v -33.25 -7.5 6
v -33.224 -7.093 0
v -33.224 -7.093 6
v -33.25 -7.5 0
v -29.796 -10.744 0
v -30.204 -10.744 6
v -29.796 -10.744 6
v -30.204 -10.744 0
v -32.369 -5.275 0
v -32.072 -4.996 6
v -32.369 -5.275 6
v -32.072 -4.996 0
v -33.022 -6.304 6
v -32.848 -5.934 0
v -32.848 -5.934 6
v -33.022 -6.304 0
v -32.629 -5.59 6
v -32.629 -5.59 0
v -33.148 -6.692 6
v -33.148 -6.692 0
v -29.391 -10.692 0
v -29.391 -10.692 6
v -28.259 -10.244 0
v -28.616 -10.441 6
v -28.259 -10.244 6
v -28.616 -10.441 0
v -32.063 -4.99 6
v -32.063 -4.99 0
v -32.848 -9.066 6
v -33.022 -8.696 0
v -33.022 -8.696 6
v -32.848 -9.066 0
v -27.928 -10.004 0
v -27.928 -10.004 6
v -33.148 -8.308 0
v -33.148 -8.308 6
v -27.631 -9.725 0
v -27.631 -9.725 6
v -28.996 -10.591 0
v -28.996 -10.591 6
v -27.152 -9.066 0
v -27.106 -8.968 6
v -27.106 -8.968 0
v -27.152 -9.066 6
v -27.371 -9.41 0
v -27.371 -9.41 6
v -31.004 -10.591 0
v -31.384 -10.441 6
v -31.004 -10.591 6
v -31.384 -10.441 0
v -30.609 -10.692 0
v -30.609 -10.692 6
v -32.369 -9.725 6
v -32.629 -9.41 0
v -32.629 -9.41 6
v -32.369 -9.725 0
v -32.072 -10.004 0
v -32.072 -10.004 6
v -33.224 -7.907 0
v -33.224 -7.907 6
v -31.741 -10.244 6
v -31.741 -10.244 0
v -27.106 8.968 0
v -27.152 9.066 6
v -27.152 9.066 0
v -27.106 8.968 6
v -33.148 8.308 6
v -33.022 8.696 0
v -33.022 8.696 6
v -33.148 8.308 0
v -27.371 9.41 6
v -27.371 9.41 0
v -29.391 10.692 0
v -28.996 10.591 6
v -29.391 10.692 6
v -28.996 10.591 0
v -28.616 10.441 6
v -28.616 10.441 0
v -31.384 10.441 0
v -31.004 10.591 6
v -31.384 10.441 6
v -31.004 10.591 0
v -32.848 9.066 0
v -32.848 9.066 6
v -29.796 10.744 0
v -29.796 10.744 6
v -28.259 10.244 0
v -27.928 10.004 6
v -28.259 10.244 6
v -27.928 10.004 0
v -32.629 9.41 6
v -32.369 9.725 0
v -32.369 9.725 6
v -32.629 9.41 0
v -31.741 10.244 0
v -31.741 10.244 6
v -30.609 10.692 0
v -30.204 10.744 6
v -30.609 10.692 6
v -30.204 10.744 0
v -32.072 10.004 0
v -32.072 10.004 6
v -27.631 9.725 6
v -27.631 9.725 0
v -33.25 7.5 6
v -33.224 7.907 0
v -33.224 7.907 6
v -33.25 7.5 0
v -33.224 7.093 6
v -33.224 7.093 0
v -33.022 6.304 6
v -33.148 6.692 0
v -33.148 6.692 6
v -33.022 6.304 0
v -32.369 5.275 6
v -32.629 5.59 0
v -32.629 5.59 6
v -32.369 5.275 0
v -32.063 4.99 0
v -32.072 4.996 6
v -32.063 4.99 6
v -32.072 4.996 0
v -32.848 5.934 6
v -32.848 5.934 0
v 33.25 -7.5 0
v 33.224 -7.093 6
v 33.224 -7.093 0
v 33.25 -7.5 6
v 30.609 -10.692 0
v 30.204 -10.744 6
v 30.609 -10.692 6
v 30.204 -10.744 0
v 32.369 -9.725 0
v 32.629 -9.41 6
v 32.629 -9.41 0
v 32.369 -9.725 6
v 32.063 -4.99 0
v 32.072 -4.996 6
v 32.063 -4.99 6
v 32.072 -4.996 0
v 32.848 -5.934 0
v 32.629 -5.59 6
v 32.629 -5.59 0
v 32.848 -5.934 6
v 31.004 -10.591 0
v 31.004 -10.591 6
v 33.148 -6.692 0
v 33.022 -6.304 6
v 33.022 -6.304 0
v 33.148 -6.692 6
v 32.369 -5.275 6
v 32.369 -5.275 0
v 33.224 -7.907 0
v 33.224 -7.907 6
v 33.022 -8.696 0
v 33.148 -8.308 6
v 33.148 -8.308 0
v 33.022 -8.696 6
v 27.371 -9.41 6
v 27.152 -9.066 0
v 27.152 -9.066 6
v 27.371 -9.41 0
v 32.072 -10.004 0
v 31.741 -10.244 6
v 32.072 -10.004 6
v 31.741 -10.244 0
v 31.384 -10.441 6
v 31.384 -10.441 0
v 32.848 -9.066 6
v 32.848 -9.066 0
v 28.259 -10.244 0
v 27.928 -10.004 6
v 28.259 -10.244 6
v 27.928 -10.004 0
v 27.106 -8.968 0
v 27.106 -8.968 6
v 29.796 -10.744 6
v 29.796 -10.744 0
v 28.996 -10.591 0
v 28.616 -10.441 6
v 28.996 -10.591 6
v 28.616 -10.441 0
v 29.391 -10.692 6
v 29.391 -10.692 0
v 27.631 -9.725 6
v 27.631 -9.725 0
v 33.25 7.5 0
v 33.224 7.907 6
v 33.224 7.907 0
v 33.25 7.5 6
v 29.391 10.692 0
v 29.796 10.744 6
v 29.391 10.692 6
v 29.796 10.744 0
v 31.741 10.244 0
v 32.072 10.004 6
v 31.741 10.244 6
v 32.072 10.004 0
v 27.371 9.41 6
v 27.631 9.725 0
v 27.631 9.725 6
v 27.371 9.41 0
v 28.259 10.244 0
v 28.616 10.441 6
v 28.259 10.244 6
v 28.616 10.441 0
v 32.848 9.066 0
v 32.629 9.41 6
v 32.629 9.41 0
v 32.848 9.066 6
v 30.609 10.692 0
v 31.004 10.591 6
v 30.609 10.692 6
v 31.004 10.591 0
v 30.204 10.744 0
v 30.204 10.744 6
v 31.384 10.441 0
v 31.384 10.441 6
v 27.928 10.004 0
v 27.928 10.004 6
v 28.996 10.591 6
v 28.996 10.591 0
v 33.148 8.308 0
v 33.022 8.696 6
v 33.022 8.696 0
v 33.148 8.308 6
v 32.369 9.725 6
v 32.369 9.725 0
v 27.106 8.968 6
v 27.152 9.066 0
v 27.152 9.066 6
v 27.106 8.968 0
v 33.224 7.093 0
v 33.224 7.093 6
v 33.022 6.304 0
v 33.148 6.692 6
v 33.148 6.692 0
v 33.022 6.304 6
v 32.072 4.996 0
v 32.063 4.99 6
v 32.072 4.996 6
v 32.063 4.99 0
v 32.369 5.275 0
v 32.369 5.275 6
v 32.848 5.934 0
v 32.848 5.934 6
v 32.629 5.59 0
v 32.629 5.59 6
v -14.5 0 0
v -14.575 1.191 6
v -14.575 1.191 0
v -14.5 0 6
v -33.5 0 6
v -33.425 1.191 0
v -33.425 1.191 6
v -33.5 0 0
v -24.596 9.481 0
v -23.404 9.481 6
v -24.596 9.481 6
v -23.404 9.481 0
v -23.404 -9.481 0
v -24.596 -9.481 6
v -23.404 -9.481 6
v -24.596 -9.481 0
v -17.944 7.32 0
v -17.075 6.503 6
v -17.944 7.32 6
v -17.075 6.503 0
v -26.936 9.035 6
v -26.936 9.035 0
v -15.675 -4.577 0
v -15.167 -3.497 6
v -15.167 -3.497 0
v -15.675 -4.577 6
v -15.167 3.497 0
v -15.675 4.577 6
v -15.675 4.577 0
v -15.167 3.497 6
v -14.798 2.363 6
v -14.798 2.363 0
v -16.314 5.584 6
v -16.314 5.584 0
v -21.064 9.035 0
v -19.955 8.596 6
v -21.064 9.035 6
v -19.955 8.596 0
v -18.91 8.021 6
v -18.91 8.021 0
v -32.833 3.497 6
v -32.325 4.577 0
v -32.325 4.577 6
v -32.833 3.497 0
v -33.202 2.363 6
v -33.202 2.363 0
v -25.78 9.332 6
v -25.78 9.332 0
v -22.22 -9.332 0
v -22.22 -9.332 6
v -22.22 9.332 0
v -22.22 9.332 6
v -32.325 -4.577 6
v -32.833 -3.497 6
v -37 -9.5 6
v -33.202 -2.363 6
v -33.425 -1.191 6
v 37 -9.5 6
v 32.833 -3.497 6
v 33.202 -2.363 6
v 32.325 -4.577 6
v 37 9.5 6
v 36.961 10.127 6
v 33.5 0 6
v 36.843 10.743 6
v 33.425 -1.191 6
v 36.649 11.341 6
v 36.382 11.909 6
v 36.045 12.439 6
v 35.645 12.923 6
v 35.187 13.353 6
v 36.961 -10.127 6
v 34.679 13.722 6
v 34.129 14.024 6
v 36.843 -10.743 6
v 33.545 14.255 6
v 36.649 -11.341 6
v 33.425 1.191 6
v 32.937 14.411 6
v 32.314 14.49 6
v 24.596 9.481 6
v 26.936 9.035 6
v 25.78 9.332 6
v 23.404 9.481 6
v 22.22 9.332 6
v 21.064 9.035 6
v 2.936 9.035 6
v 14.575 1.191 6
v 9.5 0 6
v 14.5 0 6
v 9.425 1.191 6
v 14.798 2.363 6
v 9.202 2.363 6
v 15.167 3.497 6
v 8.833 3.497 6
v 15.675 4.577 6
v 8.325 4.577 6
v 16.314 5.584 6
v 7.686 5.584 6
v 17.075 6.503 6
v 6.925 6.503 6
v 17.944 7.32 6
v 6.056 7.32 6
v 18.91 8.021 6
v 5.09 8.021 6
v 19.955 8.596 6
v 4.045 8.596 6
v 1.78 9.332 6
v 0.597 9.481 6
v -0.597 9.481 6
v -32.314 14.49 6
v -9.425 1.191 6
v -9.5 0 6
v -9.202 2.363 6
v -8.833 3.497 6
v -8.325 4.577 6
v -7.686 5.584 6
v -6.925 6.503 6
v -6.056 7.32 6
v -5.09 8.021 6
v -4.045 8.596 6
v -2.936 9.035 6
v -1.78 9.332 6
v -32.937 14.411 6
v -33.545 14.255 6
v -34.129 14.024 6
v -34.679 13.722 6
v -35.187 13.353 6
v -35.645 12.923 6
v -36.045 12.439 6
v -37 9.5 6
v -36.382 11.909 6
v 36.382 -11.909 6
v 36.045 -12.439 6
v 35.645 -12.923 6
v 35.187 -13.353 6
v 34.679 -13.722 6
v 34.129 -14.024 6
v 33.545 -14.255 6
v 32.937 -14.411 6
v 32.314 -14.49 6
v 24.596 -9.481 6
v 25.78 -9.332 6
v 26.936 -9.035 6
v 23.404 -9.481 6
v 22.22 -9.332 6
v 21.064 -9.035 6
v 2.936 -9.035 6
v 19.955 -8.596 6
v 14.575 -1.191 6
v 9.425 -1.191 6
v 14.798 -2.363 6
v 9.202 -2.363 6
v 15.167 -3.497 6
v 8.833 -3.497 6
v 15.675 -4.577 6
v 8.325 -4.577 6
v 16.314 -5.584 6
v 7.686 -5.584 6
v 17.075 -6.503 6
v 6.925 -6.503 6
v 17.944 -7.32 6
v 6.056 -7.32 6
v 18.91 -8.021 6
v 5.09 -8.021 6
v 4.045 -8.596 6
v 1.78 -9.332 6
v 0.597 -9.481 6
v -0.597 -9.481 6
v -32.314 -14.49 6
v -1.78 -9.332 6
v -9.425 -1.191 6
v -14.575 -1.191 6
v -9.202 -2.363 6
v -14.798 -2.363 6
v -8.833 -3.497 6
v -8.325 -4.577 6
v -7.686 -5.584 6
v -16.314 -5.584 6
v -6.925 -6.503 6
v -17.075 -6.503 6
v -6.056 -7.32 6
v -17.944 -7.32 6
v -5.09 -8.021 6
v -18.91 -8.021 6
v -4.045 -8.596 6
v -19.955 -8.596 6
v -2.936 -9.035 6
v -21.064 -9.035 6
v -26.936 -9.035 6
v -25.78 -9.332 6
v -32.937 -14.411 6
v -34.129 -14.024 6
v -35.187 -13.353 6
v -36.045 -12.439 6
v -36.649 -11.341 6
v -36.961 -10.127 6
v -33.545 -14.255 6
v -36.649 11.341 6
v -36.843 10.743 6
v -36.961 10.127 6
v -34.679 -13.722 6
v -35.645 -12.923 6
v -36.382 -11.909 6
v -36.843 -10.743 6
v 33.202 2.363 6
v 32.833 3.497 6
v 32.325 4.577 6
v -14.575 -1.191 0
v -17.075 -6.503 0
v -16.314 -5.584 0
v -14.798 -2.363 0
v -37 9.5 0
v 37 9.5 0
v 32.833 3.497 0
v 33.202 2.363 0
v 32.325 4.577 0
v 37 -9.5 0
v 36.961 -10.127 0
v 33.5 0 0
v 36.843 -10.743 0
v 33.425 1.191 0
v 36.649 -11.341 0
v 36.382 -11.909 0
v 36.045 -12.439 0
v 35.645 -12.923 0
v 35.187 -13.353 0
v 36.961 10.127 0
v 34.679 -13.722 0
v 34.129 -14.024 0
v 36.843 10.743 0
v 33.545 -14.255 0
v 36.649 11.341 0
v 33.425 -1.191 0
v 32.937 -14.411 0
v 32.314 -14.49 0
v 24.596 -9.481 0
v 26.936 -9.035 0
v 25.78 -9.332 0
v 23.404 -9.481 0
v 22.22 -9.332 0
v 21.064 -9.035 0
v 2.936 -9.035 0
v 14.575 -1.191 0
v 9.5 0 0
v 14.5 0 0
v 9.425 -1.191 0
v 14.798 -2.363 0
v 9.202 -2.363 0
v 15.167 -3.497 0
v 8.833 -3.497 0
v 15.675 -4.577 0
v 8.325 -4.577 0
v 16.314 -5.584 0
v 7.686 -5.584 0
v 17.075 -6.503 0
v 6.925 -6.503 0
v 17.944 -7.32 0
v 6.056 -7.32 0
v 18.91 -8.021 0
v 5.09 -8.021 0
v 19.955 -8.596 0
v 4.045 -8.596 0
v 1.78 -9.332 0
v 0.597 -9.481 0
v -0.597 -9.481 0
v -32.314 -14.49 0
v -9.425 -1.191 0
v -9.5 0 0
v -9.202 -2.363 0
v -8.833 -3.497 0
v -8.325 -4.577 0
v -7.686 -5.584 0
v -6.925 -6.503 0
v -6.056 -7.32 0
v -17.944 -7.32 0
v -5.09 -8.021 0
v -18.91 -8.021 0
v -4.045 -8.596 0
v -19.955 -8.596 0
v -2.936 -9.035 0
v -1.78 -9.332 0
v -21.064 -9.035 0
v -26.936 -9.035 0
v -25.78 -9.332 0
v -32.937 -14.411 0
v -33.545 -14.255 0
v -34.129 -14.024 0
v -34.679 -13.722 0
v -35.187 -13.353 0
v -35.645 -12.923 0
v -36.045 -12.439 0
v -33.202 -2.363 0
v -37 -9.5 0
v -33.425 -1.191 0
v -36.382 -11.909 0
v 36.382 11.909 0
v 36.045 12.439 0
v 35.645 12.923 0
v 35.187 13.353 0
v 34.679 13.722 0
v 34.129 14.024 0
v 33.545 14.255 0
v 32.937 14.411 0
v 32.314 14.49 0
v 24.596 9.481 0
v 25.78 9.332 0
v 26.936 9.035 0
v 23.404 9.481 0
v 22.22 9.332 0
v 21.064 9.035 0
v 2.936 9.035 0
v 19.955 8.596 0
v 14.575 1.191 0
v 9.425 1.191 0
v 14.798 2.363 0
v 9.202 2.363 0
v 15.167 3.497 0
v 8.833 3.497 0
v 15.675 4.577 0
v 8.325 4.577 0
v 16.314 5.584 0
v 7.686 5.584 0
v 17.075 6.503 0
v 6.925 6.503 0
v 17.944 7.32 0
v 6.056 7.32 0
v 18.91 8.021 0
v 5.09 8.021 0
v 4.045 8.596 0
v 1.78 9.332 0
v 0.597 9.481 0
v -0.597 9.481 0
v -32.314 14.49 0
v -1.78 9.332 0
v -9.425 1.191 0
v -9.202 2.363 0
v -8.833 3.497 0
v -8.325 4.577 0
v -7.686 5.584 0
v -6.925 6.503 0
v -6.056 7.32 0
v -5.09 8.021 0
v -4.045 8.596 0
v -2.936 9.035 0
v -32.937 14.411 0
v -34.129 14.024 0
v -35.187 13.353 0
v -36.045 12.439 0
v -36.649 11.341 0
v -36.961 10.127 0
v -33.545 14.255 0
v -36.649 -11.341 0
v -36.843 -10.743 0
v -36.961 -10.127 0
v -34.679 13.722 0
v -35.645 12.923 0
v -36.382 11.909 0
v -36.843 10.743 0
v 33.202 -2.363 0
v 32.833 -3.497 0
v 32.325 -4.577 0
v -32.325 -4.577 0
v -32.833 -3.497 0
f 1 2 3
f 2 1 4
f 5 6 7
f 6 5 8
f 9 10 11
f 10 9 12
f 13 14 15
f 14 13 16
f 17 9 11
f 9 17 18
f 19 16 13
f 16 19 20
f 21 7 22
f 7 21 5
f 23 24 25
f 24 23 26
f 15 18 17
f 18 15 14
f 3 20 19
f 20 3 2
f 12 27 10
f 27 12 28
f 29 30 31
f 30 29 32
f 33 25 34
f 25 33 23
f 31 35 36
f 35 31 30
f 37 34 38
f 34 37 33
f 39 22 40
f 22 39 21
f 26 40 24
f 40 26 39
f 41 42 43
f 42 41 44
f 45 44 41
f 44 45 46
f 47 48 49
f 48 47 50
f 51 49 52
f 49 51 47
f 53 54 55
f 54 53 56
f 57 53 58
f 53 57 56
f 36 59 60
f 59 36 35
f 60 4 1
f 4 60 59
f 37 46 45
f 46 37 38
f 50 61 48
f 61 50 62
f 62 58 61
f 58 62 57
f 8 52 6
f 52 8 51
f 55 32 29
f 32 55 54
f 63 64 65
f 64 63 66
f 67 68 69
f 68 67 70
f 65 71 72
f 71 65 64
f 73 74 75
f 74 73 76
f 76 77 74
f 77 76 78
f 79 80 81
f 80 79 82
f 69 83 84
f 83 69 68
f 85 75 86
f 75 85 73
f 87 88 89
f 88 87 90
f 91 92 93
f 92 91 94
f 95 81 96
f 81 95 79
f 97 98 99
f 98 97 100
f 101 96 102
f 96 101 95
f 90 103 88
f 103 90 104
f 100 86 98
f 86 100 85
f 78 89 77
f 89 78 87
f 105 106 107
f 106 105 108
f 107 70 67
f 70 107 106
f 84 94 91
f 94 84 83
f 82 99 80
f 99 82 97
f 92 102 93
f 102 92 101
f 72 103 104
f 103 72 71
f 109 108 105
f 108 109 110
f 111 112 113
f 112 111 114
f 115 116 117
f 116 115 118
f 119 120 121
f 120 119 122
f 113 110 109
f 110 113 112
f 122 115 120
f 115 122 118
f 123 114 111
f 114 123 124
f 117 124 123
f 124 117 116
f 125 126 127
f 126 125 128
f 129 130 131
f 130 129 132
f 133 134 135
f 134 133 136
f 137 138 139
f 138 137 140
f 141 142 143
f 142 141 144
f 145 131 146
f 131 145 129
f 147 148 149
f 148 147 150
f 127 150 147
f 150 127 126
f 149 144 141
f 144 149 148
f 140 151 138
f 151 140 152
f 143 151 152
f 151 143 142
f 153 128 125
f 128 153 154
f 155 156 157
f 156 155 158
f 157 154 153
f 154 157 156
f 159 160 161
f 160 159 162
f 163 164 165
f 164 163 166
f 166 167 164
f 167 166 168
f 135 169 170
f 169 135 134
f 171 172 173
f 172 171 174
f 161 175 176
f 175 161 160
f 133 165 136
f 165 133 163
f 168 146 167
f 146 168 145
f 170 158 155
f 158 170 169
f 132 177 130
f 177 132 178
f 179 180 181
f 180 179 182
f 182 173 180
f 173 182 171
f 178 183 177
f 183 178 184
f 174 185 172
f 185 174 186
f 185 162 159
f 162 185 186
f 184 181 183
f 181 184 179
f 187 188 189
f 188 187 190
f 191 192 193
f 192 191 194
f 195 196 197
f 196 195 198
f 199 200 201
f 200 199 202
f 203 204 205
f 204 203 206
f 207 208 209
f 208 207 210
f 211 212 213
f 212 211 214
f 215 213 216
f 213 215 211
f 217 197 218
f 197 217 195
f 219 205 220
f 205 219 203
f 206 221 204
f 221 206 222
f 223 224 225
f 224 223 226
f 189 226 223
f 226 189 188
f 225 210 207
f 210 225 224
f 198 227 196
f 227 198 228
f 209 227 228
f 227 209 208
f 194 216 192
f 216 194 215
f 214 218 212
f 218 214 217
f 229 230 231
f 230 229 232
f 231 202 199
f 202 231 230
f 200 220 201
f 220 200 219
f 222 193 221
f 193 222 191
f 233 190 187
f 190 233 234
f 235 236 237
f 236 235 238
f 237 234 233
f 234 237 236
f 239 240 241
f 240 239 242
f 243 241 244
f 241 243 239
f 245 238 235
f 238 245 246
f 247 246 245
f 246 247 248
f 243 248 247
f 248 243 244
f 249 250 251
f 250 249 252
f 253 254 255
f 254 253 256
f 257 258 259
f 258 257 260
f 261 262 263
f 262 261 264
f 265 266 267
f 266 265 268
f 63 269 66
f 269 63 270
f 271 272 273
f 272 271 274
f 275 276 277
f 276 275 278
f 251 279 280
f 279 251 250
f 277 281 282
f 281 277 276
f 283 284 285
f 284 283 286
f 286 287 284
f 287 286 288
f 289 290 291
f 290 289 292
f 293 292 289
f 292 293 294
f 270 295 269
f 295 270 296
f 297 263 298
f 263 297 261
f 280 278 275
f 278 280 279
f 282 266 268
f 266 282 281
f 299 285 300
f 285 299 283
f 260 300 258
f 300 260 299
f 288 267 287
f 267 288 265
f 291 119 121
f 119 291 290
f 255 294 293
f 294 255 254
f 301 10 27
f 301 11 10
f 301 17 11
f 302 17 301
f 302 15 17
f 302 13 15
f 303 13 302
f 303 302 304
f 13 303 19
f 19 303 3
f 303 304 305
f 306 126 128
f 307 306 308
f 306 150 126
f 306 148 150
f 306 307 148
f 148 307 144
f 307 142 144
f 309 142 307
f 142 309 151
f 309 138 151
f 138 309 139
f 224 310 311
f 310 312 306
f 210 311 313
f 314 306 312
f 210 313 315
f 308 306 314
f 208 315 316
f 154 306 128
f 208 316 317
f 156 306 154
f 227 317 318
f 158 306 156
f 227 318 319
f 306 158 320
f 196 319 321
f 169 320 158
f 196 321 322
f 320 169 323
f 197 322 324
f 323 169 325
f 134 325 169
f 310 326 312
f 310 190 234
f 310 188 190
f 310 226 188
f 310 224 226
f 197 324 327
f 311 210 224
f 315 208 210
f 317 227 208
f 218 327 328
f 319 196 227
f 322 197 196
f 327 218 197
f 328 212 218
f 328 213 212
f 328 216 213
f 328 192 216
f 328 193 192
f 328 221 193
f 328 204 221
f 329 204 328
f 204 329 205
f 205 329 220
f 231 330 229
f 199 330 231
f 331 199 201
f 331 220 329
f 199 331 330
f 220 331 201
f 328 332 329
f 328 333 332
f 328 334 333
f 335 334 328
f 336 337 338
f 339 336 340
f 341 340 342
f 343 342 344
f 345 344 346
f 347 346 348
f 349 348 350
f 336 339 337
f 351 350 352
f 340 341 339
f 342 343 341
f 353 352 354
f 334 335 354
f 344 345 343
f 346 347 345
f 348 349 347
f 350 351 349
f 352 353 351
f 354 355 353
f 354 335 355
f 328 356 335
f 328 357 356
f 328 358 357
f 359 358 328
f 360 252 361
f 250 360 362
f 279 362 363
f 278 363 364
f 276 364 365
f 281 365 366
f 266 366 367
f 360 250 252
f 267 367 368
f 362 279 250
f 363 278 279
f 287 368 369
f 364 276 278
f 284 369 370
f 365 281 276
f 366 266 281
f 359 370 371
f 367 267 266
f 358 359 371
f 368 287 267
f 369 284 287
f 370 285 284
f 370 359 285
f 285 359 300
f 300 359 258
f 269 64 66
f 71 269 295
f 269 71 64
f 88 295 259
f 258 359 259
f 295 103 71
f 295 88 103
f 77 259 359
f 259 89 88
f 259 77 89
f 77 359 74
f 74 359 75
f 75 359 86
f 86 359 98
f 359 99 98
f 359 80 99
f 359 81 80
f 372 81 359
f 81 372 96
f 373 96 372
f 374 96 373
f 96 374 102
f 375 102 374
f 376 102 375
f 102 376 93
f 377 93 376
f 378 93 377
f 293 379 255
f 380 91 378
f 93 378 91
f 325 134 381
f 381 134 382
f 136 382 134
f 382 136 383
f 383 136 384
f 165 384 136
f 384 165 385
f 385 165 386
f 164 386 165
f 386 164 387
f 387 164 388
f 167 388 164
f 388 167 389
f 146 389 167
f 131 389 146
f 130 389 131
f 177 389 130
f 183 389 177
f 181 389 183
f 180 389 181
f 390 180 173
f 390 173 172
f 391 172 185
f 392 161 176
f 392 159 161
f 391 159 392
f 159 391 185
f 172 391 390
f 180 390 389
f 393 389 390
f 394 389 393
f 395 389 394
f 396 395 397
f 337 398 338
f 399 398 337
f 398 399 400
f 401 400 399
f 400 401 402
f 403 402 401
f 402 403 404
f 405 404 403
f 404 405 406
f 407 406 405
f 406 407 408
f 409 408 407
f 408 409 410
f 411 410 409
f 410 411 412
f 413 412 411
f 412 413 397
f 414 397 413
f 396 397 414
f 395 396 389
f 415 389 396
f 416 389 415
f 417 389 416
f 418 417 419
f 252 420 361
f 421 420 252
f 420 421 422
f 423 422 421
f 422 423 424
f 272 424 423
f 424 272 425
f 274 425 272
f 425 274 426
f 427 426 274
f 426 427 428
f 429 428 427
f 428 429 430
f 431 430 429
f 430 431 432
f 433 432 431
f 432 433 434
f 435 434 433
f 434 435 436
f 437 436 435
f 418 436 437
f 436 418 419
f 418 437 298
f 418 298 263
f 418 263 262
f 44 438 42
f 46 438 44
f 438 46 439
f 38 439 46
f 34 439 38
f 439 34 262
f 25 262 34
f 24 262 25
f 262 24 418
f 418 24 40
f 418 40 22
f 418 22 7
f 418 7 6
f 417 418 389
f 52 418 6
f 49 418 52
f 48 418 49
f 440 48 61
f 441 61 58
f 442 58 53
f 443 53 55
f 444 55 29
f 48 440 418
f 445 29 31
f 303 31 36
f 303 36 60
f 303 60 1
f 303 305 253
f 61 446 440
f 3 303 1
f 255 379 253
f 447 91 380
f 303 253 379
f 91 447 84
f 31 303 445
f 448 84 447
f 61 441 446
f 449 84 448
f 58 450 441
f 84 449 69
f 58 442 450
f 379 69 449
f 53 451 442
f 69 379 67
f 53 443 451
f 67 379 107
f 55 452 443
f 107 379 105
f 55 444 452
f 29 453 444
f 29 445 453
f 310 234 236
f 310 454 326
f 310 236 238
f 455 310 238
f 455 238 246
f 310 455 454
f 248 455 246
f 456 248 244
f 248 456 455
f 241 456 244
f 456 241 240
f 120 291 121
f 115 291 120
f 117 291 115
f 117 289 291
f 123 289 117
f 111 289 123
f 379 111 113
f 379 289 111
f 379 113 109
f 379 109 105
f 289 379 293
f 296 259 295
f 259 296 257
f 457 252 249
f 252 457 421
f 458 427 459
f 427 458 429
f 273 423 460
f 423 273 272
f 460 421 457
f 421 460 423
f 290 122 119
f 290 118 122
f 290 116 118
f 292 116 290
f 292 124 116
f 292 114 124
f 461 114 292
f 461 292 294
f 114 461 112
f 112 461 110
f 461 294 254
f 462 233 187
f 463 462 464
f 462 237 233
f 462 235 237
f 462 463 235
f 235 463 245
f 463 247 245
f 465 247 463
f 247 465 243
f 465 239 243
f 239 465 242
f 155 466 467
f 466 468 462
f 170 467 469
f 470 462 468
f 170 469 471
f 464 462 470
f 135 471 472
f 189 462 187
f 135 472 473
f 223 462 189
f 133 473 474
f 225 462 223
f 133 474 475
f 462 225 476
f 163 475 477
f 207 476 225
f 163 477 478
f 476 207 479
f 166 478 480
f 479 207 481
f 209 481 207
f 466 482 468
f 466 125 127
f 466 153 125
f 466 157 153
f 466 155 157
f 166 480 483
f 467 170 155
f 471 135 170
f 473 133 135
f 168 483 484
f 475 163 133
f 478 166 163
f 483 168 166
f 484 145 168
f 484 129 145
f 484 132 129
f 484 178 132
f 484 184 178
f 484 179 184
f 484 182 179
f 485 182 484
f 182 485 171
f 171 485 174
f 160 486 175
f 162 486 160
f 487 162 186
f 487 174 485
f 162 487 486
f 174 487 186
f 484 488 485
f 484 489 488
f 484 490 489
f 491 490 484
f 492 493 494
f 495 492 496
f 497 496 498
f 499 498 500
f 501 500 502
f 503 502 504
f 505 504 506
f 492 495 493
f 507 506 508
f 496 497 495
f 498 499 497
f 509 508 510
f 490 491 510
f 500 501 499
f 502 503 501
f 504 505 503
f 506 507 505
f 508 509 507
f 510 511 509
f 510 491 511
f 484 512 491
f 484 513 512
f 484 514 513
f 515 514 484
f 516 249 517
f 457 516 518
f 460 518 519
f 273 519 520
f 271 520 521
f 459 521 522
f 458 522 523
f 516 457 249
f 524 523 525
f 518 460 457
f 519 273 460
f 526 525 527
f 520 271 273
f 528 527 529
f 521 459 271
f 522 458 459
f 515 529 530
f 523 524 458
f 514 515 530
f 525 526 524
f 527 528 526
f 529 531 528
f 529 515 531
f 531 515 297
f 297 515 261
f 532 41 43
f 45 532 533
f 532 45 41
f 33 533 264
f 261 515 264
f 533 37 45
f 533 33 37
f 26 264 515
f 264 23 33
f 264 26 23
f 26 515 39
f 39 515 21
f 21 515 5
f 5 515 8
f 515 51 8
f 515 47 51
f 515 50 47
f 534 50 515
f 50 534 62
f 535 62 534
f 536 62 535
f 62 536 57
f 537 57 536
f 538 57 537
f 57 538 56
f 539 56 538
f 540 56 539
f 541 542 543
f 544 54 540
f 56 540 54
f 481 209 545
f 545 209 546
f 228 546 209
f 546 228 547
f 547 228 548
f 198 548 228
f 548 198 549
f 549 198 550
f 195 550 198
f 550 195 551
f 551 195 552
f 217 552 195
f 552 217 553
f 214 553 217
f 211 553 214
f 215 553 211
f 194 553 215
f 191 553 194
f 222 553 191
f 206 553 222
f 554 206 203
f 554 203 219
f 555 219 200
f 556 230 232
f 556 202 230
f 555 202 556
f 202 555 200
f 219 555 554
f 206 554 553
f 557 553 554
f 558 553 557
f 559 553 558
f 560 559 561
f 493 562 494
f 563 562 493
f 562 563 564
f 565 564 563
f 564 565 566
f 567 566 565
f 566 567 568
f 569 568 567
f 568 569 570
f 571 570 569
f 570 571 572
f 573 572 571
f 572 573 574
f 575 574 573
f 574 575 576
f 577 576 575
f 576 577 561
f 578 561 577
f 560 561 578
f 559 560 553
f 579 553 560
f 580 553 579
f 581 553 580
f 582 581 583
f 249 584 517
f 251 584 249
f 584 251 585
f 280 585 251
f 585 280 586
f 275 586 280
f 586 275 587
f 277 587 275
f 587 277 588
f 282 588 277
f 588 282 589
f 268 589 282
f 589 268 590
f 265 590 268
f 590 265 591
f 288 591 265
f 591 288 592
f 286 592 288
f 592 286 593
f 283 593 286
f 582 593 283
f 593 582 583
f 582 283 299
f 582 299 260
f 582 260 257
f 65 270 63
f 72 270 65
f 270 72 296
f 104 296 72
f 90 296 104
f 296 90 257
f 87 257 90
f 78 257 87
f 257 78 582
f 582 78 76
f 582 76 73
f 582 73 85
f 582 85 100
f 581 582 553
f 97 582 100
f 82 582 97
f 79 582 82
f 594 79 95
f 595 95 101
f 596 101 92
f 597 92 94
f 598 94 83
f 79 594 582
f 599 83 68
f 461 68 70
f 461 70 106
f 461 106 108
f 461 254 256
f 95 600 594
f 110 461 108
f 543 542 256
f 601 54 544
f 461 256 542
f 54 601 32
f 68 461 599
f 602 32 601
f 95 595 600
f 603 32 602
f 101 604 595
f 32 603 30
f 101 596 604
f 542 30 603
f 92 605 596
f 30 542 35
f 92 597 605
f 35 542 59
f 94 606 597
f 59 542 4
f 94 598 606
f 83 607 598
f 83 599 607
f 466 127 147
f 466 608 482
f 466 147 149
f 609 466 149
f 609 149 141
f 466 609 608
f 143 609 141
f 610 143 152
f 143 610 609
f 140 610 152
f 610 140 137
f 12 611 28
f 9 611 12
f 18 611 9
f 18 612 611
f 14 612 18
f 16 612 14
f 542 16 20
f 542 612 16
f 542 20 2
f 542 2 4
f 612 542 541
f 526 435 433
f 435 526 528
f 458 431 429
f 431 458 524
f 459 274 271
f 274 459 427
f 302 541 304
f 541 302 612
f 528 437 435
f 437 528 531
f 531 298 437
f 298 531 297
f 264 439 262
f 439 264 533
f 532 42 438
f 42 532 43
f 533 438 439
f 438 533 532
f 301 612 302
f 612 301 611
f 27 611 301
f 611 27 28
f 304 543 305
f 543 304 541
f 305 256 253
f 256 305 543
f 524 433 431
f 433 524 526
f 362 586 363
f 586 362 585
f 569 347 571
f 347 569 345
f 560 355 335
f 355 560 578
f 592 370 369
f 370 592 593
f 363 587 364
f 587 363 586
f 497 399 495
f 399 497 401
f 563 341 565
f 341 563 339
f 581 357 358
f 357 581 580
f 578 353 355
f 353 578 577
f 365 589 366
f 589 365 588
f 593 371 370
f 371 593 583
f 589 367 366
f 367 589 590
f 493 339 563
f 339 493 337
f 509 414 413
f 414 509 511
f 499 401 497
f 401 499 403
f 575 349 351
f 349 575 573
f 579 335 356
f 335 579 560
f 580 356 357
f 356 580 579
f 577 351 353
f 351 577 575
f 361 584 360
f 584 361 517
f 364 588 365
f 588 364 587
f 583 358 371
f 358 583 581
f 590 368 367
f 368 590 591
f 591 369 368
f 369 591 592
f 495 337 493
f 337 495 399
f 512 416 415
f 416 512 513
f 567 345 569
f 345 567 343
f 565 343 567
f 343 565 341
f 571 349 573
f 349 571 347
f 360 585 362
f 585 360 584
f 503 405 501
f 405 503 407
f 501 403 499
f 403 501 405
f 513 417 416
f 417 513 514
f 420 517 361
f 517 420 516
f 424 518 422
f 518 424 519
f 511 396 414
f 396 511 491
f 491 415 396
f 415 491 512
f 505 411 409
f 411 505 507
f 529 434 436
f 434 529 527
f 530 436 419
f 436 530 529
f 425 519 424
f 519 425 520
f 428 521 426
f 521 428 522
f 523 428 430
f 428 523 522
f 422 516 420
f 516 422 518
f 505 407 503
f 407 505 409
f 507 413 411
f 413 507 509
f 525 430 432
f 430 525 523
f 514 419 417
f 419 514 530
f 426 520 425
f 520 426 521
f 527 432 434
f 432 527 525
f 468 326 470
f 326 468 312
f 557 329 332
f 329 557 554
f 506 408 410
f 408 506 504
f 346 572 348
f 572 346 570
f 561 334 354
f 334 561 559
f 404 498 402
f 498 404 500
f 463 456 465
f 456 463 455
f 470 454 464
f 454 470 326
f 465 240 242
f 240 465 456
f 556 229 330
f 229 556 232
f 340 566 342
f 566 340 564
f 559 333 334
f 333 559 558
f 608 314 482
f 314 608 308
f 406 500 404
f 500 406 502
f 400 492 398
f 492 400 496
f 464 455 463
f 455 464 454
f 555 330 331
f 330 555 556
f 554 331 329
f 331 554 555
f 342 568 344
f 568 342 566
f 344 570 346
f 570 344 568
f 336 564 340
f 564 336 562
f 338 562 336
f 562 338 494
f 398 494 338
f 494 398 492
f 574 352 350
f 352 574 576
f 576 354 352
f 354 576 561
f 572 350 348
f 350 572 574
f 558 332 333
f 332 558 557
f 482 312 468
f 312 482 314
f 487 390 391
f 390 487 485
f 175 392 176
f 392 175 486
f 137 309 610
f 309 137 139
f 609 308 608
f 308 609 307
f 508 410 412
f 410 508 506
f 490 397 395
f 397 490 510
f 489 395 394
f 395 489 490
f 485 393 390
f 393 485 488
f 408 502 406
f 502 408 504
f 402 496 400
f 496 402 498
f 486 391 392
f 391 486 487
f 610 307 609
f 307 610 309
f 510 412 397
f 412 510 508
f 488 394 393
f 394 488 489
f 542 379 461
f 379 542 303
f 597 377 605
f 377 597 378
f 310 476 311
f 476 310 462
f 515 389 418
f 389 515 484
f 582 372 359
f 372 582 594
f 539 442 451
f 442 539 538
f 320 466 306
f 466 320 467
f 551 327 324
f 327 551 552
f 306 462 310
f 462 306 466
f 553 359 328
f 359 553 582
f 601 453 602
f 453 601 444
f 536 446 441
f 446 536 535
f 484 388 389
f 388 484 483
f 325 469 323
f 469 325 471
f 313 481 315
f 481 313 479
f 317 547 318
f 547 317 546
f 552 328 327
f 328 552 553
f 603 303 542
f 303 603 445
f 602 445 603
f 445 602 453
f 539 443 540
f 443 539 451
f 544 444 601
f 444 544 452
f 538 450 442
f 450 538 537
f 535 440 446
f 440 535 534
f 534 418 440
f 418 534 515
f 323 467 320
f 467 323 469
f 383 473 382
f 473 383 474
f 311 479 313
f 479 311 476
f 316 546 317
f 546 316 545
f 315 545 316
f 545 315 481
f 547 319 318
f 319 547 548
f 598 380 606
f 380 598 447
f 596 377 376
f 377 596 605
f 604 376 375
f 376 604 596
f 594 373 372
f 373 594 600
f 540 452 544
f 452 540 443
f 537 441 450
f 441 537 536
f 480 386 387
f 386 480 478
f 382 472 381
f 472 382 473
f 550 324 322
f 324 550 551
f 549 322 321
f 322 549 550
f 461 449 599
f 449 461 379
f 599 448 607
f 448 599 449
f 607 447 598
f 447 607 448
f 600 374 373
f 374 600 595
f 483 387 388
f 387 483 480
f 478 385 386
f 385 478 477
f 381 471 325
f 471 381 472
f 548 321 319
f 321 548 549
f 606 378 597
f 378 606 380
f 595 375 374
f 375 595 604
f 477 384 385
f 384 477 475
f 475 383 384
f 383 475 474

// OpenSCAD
$fn = 50;


difference() {
	union() {
		hull() {
			translate(v = [-32.0000000000, 9.5000000000, 0]) {
				cylinder(h = 6, r = 5);
			}
			translate(v = [32.0000000000, 9.5000000000, 0]) {
				cylinder(h = 6, r = 5);
			}
			translate(v = [-32.0000000000, -9.5000000000, 0]) {
				cylinder(h = 6, r = 5);
			}
			translate(v = [32.0000000000, -9.5000000000, 0]) {
				cylinder(h = 6, r = 5);
			}
		}
	}
	union() {
		#translate(v = [-30.0000000000, -7.5000000000, -100.0000000000]) {
			cylinder(h = 200, r = 3.2500000000);
		}
		#translate(v = [-30.0000000000, 7.5000000000, -100.0000000000]) {
			cylinder(h = 200, r = 3.2500000000);
		}
		#translate(v = [30.0000000000, -7.5000000000, -100.0000000000]) {
			cylinder(h = 200, r = 3.2500000000);
		}
		#translate(v = [30.0000000000, 7.5000000000, -100.0000000000]) {
			cylinder(h = 200, r = 3.2500000000);
		}
		#translate(v = [-24.0000000000, 0, 0]) {
			cylinder(h = 6, r = 9.5000000000);
		}
		#cylinder(h = 6, r = 9.5000000000);
		#translate(v = [24.0000000000, 0, 0]) {
			cylinder(h = 6, r = 9.5000000000);
		}
	}
}
